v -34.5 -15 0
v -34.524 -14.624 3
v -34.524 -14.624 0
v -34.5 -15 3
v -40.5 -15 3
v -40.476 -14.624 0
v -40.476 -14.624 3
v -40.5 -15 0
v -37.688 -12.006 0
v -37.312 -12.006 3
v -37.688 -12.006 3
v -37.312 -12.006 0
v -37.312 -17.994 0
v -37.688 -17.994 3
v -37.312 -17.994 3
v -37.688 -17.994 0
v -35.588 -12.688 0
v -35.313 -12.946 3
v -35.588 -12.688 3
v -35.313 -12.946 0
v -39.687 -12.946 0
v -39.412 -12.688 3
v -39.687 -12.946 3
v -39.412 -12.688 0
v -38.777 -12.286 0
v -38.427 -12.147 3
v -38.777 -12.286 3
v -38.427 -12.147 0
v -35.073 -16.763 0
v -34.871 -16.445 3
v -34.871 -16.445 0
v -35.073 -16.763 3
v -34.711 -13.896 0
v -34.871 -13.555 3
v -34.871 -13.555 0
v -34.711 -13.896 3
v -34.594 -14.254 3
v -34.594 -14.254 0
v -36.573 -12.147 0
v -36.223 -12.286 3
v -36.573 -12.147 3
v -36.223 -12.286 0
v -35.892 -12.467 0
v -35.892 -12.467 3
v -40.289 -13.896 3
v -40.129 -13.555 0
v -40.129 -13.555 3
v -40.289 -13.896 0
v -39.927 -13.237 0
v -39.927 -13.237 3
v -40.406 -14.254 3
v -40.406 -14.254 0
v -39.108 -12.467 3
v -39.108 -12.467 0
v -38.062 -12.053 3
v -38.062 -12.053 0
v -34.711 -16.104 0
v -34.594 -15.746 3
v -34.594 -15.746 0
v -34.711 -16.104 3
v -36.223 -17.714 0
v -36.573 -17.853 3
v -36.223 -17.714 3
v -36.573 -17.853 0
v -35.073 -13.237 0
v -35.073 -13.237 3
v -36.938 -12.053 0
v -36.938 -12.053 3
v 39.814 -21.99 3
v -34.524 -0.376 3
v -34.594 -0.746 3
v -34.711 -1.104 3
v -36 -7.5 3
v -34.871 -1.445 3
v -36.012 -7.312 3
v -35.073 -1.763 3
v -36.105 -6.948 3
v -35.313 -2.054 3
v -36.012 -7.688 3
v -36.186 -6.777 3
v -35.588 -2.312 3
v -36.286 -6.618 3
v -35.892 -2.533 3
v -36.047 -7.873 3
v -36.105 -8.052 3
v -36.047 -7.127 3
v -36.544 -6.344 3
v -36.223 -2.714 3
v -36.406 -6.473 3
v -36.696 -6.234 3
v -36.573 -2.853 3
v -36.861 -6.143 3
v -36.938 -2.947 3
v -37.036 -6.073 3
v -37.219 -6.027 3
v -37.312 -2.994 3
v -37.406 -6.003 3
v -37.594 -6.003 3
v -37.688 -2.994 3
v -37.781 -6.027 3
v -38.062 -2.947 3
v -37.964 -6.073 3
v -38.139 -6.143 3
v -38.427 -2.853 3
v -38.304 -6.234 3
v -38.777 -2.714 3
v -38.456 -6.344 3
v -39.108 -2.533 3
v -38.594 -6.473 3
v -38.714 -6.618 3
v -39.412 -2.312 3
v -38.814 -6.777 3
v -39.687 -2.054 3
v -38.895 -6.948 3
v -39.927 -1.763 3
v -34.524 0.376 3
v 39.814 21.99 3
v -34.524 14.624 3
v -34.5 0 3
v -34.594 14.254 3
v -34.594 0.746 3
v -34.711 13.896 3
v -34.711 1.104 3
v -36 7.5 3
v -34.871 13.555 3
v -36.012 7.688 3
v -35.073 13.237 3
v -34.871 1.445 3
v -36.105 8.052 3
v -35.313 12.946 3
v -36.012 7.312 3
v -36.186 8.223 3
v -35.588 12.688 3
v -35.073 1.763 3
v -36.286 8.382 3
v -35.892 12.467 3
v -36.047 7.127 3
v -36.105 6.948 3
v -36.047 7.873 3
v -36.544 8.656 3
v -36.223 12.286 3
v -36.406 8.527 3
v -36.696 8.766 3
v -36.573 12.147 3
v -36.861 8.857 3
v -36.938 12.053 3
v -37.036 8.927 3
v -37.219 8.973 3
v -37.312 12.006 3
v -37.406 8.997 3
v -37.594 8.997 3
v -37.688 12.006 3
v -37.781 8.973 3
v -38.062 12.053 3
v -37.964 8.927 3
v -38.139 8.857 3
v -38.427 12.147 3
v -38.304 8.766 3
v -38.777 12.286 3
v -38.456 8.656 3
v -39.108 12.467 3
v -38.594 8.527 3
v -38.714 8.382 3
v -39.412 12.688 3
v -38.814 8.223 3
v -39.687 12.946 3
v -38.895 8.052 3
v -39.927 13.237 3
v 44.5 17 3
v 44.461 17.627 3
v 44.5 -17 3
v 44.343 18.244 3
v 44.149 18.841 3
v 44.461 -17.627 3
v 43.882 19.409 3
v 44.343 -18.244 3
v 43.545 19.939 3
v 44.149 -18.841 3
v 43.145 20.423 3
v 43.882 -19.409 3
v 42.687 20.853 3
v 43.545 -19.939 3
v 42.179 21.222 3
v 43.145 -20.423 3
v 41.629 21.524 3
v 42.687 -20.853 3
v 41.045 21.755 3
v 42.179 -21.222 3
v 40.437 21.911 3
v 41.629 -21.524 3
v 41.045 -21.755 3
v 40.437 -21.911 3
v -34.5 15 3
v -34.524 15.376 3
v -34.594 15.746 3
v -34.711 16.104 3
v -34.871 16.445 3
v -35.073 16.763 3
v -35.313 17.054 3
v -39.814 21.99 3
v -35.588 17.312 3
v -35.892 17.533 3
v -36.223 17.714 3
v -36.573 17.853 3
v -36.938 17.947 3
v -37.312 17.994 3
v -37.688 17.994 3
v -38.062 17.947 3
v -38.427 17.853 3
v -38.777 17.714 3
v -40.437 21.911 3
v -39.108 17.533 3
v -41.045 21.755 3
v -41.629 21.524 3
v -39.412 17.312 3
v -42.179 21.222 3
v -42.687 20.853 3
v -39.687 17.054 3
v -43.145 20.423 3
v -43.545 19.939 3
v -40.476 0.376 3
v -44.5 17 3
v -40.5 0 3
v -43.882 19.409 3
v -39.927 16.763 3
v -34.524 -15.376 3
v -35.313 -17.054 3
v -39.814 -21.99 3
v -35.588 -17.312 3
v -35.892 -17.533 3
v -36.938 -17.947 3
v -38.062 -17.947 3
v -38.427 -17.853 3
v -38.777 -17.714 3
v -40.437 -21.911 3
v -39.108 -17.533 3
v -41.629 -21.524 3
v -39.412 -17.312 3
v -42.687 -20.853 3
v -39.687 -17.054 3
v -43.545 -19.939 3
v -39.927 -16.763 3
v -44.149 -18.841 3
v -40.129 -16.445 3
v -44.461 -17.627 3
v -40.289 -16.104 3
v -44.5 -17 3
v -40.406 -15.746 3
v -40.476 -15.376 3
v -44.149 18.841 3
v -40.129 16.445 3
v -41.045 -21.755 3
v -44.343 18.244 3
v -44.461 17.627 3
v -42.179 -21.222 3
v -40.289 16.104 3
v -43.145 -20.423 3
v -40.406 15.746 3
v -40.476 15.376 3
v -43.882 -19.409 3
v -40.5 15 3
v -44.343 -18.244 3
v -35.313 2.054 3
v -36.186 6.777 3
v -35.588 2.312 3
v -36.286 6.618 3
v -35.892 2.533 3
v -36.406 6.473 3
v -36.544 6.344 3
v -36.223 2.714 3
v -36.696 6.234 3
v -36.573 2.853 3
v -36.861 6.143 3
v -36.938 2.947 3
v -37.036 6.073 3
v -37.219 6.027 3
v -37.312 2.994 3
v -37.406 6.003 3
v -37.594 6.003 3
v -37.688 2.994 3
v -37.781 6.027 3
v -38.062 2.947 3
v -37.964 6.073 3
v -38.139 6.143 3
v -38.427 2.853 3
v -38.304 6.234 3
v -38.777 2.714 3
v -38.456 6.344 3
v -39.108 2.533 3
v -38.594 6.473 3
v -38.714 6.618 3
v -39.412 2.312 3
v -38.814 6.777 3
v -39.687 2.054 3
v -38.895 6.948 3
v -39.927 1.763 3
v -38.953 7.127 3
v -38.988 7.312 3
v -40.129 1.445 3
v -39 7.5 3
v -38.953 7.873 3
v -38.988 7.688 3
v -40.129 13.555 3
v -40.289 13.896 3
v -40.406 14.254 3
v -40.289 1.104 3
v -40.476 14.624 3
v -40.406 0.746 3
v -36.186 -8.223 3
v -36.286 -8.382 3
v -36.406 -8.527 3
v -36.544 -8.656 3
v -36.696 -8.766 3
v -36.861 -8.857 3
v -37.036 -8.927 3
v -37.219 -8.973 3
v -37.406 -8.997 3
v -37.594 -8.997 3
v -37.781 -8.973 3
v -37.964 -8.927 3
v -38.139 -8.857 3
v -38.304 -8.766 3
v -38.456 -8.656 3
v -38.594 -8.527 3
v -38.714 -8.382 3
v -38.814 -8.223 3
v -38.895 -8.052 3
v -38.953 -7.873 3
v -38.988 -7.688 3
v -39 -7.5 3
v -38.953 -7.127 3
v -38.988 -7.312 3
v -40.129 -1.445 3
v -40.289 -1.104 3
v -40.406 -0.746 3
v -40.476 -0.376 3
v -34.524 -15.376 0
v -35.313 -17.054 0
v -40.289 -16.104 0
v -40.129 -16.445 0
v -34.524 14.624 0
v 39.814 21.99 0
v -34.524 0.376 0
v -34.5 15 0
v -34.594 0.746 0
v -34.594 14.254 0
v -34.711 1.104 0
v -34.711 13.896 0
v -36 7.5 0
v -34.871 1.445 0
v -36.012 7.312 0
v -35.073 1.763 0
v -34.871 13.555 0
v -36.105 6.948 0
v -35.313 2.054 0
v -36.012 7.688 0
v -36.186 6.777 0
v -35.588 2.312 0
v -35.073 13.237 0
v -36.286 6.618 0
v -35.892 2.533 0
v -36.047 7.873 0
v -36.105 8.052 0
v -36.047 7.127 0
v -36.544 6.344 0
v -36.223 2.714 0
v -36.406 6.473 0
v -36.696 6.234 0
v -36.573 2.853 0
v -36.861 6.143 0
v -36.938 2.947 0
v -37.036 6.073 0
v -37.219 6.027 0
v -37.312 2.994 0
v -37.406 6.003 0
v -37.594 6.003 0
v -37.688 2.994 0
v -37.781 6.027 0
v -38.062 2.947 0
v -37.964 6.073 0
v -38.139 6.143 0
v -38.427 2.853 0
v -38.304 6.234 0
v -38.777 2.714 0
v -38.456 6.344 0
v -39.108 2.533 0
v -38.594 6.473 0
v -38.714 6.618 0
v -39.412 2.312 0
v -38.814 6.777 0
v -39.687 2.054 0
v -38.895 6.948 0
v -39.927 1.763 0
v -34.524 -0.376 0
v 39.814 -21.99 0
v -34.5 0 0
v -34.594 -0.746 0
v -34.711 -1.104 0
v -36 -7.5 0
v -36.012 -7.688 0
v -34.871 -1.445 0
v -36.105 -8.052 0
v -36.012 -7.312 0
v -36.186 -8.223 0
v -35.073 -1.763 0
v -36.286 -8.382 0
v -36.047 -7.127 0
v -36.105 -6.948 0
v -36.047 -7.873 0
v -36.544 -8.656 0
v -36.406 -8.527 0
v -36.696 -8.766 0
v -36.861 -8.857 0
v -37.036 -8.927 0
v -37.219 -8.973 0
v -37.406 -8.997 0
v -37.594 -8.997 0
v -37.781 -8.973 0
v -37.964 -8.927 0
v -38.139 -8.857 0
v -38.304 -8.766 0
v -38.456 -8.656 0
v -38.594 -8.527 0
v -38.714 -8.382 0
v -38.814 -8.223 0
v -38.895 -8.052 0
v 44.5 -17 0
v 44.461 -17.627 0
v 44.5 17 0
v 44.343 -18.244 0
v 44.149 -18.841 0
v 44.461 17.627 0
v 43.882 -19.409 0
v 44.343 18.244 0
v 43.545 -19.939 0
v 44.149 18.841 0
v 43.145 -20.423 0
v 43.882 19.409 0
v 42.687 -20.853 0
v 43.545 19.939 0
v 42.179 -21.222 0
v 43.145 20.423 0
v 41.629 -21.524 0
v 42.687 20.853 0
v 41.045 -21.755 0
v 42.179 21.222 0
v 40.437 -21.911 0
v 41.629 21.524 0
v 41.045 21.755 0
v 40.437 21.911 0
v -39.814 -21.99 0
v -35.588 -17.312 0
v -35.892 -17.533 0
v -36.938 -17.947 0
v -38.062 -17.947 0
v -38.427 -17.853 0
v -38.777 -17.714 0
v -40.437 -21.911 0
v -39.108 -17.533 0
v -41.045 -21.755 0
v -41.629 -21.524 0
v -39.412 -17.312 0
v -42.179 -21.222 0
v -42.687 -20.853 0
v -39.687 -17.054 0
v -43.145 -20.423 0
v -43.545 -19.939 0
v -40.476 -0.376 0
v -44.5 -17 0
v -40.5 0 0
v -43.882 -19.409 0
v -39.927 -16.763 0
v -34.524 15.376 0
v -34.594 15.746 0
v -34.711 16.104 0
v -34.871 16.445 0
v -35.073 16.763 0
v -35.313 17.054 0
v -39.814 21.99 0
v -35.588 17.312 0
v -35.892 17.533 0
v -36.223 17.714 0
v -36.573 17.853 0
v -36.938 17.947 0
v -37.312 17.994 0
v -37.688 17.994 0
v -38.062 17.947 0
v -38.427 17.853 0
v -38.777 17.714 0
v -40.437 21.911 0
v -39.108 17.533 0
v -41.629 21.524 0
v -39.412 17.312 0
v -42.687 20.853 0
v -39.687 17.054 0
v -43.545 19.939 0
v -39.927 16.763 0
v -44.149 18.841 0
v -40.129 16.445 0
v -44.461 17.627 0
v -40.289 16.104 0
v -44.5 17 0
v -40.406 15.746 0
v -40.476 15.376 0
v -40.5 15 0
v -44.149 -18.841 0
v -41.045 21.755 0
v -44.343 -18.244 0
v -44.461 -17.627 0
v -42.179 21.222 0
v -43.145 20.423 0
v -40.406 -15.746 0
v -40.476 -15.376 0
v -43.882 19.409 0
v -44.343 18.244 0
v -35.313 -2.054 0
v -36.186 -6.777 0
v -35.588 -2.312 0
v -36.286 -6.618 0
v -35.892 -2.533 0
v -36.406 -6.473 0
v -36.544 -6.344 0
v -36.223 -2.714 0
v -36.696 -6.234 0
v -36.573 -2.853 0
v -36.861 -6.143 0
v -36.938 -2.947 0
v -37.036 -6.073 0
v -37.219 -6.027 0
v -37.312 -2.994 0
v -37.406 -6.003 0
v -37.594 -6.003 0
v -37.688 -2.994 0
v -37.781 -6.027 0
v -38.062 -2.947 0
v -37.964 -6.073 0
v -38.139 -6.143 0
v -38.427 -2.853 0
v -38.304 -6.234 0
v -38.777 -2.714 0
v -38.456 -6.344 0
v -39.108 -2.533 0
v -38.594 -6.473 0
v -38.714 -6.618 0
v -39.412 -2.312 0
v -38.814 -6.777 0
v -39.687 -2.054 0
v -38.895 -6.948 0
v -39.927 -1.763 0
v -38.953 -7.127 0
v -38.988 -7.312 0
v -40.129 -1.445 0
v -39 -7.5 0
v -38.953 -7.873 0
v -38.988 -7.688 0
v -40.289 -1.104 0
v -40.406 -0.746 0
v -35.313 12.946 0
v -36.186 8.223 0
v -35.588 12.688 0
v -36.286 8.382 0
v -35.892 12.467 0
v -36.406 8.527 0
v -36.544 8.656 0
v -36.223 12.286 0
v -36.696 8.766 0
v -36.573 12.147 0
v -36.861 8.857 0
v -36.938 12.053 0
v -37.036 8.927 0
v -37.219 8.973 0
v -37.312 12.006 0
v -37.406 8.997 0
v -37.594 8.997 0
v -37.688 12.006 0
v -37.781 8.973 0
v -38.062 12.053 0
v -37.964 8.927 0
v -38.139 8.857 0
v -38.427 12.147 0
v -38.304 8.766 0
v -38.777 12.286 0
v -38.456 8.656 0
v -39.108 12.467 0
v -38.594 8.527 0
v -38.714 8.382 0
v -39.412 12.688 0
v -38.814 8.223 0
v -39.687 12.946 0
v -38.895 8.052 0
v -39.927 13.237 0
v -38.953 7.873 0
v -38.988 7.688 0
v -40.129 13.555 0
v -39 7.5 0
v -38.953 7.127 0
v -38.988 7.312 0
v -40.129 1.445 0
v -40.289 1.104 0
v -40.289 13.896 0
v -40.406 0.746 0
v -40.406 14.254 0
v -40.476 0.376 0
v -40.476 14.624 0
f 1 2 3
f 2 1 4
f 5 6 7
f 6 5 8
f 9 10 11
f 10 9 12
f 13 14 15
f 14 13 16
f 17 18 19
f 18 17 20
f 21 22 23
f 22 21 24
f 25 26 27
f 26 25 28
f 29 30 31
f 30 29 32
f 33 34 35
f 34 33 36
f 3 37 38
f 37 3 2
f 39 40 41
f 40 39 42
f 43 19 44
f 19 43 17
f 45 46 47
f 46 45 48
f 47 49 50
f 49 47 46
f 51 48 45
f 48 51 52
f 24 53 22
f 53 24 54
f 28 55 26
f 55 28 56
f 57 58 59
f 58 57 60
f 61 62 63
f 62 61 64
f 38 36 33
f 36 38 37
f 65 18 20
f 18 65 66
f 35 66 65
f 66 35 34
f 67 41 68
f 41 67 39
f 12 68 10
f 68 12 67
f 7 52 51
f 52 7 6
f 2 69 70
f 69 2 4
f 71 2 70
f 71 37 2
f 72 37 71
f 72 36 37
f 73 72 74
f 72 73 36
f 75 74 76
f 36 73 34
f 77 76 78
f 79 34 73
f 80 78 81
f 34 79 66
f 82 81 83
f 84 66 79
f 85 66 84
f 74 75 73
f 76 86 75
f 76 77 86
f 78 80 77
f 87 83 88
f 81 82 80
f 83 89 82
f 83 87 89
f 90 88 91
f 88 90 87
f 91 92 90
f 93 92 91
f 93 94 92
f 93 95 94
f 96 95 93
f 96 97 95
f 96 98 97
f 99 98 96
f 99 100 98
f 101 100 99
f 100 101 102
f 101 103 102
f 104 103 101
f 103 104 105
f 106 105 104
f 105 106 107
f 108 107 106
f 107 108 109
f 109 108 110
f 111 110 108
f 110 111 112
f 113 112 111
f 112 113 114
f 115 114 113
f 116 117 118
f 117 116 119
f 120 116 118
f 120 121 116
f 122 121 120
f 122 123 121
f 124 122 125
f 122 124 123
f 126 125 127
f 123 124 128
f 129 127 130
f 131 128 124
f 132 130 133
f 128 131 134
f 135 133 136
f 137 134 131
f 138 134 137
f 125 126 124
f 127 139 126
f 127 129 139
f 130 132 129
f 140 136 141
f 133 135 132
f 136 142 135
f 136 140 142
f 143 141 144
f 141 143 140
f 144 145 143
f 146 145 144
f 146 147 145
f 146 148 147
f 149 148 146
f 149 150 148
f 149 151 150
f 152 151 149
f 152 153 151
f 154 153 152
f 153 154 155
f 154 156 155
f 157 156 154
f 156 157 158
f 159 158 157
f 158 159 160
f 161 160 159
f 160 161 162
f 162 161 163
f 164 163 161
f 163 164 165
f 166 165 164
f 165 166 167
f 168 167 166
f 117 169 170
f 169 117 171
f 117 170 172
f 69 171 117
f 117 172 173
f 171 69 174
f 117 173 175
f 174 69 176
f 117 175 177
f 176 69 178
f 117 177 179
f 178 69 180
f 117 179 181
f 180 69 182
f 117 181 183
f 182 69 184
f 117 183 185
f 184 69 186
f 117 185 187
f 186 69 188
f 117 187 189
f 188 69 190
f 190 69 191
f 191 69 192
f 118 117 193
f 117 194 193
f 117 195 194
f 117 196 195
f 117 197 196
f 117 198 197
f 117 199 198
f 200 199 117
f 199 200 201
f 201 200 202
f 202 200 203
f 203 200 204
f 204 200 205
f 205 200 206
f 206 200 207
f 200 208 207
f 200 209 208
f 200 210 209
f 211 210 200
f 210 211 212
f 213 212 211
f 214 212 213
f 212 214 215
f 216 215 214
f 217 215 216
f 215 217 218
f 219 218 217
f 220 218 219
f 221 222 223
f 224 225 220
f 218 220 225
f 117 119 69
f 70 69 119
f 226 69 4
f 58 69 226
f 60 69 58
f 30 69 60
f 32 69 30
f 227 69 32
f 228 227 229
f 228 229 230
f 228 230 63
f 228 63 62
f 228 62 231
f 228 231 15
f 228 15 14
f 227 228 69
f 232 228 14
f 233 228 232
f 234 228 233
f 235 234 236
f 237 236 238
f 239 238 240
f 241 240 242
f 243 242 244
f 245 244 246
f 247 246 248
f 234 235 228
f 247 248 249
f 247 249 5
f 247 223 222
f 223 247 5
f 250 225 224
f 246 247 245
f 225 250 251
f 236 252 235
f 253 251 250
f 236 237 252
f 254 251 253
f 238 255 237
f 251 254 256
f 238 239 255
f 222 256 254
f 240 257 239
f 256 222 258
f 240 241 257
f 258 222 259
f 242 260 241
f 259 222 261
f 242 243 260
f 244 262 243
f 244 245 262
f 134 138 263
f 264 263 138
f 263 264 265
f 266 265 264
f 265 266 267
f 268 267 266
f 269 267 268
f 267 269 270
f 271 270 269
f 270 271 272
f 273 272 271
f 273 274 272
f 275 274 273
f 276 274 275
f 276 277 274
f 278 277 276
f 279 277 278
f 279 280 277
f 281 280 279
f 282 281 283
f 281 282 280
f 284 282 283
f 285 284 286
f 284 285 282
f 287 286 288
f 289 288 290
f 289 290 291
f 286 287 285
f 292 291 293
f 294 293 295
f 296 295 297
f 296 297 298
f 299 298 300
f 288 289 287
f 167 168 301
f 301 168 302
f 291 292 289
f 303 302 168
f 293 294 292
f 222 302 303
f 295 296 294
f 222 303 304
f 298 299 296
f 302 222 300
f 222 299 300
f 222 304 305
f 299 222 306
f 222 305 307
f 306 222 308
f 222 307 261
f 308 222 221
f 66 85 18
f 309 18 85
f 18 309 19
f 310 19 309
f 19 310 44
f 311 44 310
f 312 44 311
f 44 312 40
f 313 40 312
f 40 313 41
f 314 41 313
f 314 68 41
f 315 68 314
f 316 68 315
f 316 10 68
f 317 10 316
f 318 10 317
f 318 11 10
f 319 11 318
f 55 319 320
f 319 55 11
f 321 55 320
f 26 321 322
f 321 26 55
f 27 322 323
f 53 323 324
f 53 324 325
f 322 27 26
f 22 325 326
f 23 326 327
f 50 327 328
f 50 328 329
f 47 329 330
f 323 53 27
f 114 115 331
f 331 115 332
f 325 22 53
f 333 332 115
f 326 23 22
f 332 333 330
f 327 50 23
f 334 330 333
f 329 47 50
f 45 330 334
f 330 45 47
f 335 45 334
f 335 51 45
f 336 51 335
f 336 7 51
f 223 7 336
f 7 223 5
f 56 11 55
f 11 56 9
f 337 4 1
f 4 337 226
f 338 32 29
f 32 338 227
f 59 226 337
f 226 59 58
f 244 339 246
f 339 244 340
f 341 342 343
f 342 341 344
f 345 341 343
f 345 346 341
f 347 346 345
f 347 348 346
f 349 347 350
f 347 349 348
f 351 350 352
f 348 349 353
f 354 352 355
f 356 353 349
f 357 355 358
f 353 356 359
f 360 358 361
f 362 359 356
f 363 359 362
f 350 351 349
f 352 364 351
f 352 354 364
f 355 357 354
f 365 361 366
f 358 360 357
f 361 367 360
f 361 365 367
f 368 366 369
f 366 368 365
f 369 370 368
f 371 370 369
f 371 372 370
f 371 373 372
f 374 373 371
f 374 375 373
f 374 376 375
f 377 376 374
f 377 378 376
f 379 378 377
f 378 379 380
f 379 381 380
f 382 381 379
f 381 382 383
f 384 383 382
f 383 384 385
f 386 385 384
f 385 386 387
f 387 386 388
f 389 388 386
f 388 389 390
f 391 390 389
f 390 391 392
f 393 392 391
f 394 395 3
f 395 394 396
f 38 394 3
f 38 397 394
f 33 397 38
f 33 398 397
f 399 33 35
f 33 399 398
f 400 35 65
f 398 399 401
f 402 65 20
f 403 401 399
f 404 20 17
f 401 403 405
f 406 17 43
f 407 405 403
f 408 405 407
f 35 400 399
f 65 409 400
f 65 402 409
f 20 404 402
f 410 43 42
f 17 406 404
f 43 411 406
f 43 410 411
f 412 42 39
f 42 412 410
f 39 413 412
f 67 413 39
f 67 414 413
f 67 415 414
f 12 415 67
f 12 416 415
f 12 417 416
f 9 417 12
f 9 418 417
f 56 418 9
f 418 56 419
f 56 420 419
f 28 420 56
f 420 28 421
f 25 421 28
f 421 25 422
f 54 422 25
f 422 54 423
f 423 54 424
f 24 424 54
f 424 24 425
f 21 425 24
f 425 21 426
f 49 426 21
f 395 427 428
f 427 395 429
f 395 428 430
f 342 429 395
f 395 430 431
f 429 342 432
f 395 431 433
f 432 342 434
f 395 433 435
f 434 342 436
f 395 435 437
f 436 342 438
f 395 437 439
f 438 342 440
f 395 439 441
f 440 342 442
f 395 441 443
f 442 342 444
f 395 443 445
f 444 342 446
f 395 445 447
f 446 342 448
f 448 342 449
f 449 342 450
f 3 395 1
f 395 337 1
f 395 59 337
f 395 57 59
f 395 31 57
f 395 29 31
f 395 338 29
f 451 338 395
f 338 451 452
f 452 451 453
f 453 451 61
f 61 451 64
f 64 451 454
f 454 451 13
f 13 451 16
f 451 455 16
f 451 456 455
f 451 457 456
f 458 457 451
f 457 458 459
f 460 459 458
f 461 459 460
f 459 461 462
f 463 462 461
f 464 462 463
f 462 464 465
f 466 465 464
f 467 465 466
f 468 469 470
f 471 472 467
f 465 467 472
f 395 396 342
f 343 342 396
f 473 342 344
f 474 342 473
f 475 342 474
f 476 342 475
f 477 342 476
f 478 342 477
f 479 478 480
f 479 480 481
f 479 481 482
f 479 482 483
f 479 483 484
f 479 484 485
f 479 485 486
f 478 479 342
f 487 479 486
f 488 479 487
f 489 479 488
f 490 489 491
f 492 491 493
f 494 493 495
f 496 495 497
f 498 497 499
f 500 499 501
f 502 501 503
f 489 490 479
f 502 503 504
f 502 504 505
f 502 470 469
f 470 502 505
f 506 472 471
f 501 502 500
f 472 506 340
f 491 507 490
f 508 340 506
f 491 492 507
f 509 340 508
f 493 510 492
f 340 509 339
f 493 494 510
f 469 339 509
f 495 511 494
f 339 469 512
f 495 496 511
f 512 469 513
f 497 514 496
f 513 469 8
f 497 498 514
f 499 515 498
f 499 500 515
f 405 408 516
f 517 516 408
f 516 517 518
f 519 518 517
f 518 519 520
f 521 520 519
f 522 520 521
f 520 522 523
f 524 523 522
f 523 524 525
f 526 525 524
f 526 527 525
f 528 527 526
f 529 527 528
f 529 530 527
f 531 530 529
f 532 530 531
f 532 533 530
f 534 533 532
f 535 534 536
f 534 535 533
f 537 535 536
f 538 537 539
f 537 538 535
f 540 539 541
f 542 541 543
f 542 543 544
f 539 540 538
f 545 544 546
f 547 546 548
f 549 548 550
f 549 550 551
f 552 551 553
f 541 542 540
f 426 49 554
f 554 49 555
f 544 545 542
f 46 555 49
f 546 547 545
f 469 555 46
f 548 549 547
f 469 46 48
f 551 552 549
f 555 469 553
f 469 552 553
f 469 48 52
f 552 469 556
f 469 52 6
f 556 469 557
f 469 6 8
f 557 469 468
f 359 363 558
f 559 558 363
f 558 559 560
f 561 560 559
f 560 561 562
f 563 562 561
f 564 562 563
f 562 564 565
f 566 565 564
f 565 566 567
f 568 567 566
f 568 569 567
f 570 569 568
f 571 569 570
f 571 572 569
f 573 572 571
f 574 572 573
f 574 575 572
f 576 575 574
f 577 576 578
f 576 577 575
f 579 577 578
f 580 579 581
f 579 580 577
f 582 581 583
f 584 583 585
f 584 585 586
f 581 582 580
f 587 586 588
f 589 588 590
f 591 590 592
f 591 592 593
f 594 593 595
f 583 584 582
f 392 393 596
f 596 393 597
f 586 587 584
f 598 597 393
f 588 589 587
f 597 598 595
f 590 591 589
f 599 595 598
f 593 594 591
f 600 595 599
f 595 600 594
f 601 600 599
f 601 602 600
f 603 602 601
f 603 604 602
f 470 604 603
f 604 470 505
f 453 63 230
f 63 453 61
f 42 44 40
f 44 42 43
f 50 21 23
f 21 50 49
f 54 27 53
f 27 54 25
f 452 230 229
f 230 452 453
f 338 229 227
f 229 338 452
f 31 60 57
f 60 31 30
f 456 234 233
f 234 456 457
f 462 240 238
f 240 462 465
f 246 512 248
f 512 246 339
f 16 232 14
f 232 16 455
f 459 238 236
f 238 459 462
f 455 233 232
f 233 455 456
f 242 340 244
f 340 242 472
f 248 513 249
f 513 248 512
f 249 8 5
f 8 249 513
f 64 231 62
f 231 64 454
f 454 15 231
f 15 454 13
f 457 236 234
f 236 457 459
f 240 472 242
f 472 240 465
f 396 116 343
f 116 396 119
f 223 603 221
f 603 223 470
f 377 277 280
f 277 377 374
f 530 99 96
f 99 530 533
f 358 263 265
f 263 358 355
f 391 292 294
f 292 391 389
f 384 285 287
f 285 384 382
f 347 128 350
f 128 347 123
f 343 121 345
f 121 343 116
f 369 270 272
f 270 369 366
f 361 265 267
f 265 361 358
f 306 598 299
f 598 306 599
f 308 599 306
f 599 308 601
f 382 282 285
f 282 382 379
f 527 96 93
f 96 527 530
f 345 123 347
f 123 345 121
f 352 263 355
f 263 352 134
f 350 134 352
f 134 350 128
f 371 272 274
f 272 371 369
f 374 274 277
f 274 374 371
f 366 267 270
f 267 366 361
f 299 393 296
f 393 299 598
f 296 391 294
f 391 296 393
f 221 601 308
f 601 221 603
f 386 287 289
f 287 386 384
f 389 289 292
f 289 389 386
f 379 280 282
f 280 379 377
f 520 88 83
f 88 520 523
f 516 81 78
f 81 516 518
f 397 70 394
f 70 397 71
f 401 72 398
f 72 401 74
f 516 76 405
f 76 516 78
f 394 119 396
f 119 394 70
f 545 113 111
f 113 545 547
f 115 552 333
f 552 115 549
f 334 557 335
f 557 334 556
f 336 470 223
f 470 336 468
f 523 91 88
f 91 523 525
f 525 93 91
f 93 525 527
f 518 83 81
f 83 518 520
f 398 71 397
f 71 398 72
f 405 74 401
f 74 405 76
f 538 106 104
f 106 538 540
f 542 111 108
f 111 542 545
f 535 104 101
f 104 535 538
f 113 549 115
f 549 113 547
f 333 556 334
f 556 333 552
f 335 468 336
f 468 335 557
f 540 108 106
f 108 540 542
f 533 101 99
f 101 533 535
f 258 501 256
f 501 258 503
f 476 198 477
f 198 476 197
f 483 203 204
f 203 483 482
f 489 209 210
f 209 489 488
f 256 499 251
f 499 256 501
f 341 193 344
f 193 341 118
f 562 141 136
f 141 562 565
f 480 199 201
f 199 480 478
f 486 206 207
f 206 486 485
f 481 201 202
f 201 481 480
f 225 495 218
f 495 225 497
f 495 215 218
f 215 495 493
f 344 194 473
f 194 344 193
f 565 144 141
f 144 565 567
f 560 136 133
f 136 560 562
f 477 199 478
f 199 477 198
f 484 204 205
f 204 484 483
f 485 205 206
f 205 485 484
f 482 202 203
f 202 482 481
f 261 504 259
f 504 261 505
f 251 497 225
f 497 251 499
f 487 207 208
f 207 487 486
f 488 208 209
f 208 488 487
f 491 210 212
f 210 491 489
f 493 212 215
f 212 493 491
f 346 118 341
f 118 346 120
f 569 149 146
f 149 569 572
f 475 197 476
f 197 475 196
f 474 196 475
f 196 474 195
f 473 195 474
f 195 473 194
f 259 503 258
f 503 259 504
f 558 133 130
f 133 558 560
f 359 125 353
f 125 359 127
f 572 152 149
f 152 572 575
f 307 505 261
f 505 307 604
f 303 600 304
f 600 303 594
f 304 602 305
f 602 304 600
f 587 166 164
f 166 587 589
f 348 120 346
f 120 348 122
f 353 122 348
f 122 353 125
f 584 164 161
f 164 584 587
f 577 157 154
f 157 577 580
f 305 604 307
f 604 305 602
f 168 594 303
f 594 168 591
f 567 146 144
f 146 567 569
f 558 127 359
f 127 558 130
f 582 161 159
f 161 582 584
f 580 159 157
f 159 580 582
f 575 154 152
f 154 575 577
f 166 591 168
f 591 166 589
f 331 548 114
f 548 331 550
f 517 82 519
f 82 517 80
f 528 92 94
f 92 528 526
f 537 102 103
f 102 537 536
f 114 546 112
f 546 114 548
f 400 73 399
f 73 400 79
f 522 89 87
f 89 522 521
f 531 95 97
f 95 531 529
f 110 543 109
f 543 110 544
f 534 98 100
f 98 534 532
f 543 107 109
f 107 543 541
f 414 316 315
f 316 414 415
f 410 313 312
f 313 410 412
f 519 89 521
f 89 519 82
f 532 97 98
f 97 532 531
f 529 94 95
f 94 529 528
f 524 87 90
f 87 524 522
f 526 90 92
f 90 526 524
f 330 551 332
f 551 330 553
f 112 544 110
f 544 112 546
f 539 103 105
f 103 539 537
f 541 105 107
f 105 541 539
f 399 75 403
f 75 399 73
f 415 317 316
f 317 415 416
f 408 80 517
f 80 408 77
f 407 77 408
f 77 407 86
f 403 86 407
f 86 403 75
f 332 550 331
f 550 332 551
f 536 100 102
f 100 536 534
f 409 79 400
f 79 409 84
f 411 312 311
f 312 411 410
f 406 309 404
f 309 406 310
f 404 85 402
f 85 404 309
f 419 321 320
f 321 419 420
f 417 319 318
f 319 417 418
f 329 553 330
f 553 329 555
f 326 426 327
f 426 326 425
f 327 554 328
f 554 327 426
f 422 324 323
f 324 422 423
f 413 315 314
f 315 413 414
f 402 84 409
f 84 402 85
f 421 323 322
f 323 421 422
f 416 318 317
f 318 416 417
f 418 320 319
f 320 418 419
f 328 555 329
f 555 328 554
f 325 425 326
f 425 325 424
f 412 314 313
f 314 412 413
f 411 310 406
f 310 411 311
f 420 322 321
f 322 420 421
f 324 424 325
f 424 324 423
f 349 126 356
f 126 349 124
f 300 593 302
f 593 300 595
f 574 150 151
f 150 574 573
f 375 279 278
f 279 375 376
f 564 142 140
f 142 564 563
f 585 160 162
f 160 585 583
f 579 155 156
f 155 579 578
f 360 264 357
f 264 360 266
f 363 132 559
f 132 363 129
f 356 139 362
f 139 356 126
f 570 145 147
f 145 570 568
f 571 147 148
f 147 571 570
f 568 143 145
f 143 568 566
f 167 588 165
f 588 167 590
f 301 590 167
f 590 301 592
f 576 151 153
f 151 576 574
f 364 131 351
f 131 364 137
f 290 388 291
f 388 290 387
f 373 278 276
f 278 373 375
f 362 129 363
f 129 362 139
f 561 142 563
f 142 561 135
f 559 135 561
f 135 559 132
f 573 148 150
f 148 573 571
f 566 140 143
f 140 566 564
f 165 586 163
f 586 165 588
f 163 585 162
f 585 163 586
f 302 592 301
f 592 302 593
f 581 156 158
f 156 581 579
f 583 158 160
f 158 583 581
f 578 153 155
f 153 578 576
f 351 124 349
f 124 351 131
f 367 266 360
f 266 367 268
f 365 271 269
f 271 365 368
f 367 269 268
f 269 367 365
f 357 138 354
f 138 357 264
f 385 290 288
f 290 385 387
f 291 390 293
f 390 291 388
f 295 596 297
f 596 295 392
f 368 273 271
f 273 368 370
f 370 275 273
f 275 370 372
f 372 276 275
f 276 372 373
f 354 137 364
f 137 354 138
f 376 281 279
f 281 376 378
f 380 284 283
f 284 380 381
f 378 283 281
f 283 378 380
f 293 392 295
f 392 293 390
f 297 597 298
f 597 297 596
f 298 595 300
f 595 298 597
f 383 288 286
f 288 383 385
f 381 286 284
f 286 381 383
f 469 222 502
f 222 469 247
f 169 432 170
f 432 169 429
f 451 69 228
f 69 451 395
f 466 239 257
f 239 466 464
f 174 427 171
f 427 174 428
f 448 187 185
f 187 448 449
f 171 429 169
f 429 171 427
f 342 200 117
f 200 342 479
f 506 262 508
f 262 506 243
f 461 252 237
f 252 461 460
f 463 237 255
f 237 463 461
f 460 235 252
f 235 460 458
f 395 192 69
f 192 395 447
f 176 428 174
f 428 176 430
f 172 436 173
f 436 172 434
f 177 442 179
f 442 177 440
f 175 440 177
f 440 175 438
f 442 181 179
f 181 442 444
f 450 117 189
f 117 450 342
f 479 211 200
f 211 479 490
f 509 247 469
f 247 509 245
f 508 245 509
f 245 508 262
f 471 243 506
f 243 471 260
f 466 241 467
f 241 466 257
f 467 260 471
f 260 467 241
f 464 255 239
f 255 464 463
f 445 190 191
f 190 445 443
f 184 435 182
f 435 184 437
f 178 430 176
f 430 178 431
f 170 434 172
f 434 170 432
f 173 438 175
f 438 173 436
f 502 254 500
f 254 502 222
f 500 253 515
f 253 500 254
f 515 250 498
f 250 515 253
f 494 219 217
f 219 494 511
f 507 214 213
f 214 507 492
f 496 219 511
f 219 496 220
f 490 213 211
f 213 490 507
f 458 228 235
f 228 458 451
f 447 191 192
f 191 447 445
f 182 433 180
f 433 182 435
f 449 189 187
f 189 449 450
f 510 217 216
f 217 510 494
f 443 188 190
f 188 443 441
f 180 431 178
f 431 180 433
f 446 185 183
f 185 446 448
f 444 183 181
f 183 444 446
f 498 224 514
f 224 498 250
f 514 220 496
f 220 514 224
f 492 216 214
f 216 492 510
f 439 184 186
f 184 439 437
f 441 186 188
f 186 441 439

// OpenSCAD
$fn = 50;


difference() {
	union() {
		hull() {
			translate(v = [-39.5000000000, 17.0000000000, 0]) {
				cylinder(h = 3, r = 5);
			}
			translate(v = [39.5000000000, 17.0000000000, 0]) {
				cylinder(h = 3, r = 5);
			}
			translate(v = [-39.5000000000, -17.0000000000, 0]) {
				cylinder(h = 3, r = 5);
			}
			translate(v = [39.5000000000, -17.0000000000, 0]) {
				cylinder(h = 3, r = 5);
			}
		}
	}
	union() {
		translate(v = [-37.5000000000, -15.0000000000, 0]) {
			cylinder(h = 3, r = 3.0000000000);
		}
		translate(v = [-37.5000000000, 0.0000000000, 0]) {
			cylinder(h = 3, r = 3.0000000000);
		}
		translate(v = [-37.5000000000, 15.0000000000, 0]) {
			cylinder(h = 3, r = 3.0000000000);
		}
		translate(v = [-37.5000000000, -15.0000000000, 0]) {
			cylinder(h = 3, r = 1.5000000000);
		}
		translate(v = [-37.5000000000, -7.5000000000, 0]) {
			cylinder(h = 3, r = 1.5000000000);
		}
		translate(v = [-37.5000000000, 0.0000000000, 0]) {
			cylinder(h = 3, r = 1.5000000000);
		}
		translate(v = [-37.5000000000, 7.5000000000, 0]) {
			cylinder(h = 3, r = 1.5000000000);
		}
		translate(v = [-37.5000000000, 15.0000000000, 0]) {
			cylinder(h = 3, r = 1.5000000000);
		}
		translate(v = [-37.5000000000, -15.0000000000, 0]) {
			cylinder(h = 3, r = 1.5000000000);
		}
		translate(v = [-37.5000000000, -7.5000000000, 0]) {
			cylinder(h = 3, r = 1.5000000000);
		}
		translate(v = [-37.5000000000, 0.0000000000, 0]) {
			cylinder(h = 3, r = 1.5000000000);
		}
		translate(v = [-37.5000000000, 7.5000000000, 0]) {
			cylinder(h = 3, r = 1.5000000000);
		}
		translate(v = [-37.5000000000, 15.0000000000, 0]) {
			cylinder(h = 3, r = 1.5000000000);
		}
		translate(v = [-37.5000000000, -15.0000000000, 0]) {
			cylinder(h = 3, r = 1.5000000000);
		}
		translate(v = [-37.5000000000, -7.5000000000, 0]) {
			cylinder(h = 3, r = 1.5000000000);
		}
		translate(v = [-37.5000000000, 0.0000000000, 0]) {
			cylinder(h = 3, r = 1.5000000000);
		}
		translate(v = [-37.5000000000, 7.5000000000, 0]) {
			cylinder(h = 3, r = 1.5000000000);
		}
		translate(v = [-37.5000000000, 15.0000000000, 0]) {
			cylinder(h = 3, r = 1.5000000000);
		}
	}
}
